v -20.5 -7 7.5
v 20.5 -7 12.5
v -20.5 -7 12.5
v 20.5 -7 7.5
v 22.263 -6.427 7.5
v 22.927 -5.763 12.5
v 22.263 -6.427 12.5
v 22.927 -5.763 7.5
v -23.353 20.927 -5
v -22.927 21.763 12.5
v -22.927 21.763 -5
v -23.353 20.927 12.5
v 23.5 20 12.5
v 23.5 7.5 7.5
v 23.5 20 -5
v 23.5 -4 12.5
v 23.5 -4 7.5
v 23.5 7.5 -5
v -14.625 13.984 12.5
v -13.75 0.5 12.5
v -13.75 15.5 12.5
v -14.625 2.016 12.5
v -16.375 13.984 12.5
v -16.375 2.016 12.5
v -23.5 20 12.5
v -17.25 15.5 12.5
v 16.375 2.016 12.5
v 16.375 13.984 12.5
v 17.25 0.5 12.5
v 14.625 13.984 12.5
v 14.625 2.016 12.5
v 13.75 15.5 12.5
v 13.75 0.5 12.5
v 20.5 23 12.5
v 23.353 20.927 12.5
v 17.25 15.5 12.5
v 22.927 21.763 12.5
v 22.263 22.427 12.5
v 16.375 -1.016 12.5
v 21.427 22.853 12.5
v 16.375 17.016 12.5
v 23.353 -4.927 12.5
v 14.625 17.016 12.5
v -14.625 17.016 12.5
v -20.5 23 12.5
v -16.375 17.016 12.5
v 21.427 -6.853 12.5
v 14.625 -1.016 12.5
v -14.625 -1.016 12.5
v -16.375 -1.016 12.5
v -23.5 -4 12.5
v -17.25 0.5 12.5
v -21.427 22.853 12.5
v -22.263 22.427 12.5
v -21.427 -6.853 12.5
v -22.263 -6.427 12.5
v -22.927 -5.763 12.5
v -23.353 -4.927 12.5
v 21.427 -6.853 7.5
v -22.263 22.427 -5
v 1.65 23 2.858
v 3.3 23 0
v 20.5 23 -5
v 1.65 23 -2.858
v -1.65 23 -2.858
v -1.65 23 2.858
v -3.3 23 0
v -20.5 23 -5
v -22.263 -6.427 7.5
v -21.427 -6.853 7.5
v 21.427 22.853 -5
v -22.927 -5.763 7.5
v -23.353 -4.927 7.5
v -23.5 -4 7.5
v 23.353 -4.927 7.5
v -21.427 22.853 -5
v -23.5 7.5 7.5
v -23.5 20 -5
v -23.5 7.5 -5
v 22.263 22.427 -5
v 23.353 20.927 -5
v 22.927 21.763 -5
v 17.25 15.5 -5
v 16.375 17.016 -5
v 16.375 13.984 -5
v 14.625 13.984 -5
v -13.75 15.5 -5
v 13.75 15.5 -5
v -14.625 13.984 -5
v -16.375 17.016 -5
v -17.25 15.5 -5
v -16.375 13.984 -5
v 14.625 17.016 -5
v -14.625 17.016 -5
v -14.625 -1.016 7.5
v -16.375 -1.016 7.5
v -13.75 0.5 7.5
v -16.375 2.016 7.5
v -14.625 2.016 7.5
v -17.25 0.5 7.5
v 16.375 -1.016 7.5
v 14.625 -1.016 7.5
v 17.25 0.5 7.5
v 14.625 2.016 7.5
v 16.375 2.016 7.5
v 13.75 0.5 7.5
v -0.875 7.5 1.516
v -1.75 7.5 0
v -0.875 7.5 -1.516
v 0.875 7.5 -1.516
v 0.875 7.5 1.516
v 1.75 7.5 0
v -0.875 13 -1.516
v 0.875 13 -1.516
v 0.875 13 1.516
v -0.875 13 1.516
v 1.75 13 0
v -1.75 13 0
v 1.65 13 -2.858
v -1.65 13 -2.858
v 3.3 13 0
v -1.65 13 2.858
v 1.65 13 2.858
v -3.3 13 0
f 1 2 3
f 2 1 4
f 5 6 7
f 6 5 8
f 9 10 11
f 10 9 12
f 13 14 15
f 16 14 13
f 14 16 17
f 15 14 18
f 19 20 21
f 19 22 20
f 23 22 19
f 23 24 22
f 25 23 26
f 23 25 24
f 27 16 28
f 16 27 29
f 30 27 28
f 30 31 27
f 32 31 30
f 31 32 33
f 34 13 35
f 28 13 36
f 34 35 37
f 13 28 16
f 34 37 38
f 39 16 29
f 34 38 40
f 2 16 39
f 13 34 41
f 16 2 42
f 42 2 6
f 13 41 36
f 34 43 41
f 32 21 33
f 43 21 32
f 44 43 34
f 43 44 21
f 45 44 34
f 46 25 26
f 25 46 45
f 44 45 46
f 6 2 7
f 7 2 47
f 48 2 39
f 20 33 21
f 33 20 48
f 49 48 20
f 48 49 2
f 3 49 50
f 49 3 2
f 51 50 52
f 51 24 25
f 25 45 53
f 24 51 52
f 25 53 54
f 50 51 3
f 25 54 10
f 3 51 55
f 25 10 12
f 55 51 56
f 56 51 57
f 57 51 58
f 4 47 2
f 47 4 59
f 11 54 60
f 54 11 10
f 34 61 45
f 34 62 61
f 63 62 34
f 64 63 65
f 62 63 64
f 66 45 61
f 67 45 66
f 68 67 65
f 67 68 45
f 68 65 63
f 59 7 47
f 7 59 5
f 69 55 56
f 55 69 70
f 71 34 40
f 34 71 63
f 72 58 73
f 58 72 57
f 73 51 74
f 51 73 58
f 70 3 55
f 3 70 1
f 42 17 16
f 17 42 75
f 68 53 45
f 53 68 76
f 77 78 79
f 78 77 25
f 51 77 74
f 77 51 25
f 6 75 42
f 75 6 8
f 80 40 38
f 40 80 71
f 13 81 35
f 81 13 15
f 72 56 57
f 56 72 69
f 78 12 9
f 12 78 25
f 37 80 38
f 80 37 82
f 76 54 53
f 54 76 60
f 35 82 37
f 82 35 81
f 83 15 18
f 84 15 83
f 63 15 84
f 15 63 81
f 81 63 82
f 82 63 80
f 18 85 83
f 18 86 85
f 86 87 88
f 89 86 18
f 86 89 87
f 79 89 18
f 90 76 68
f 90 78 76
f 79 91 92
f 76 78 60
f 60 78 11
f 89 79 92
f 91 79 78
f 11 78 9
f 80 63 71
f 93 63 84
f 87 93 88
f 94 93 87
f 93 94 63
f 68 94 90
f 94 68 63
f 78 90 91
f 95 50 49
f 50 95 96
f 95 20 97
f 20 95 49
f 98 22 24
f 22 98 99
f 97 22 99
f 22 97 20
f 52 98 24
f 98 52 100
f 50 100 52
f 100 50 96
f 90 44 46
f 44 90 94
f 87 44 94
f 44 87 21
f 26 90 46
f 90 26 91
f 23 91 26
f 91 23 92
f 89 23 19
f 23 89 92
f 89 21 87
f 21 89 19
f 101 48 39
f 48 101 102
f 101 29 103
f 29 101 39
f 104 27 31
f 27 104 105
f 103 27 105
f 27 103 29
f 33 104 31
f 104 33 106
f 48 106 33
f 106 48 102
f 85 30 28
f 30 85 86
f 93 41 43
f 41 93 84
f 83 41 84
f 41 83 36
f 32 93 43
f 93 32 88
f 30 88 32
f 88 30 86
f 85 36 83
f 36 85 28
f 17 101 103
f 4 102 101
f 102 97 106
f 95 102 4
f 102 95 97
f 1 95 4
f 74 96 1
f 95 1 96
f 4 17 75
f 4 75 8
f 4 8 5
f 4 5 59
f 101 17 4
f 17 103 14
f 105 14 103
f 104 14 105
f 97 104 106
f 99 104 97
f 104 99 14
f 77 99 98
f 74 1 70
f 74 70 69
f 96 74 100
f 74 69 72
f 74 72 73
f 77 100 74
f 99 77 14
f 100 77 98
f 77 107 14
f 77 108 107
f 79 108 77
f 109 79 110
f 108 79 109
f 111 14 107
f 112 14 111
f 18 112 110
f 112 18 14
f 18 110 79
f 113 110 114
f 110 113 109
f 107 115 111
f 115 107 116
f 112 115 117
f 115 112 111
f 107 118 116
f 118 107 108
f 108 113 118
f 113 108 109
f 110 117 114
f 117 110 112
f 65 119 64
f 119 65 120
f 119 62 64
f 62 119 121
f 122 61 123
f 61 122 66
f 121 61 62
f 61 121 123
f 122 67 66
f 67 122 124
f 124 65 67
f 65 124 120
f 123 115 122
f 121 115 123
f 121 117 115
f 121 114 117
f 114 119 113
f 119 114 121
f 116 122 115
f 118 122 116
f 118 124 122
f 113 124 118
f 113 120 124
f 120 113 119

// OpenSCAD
//camera mount

use <fillets_and_rounds.scad>

module camera_mount(){
    x_offset = 15.5;
    y_offset = 7.5;
    
    difference(){
    union(){
        add_rounds(axis="z",R=3,fn=20)cube([47,30,5],center=true);
        translate([0,0,-7.5])add_rounds(axis="z",R=3,fn=20)cube([47,30,15],center=true);
    }//end union
    for(i=[-1:2:1]){
        for(j = [-1:2:1]){
            translate([i*x_offset,j*y_offset,0])cylinder(d=3.5,h=50,center=true);
            //translate([i*x_offset,j*y_offset,-1])cylinder(d=6.5,h=3.5,$fn=6);
        }//end for
    }//end for
}
    
}//end module

module frame_mount(){
    difference(){
    translate([0,8,10])camera_mount();
    cube([60,15,15],center=true);
    rotate([90,0,0])cylinder(d=3.5,h=50,center=true);
        translate([0,15+5.5,0])rotate([90,0,0])cylinder(d=6.6,h=15,$fn=6,center=true);
    }//end difference
}//end frame_mount

frame_mount();
